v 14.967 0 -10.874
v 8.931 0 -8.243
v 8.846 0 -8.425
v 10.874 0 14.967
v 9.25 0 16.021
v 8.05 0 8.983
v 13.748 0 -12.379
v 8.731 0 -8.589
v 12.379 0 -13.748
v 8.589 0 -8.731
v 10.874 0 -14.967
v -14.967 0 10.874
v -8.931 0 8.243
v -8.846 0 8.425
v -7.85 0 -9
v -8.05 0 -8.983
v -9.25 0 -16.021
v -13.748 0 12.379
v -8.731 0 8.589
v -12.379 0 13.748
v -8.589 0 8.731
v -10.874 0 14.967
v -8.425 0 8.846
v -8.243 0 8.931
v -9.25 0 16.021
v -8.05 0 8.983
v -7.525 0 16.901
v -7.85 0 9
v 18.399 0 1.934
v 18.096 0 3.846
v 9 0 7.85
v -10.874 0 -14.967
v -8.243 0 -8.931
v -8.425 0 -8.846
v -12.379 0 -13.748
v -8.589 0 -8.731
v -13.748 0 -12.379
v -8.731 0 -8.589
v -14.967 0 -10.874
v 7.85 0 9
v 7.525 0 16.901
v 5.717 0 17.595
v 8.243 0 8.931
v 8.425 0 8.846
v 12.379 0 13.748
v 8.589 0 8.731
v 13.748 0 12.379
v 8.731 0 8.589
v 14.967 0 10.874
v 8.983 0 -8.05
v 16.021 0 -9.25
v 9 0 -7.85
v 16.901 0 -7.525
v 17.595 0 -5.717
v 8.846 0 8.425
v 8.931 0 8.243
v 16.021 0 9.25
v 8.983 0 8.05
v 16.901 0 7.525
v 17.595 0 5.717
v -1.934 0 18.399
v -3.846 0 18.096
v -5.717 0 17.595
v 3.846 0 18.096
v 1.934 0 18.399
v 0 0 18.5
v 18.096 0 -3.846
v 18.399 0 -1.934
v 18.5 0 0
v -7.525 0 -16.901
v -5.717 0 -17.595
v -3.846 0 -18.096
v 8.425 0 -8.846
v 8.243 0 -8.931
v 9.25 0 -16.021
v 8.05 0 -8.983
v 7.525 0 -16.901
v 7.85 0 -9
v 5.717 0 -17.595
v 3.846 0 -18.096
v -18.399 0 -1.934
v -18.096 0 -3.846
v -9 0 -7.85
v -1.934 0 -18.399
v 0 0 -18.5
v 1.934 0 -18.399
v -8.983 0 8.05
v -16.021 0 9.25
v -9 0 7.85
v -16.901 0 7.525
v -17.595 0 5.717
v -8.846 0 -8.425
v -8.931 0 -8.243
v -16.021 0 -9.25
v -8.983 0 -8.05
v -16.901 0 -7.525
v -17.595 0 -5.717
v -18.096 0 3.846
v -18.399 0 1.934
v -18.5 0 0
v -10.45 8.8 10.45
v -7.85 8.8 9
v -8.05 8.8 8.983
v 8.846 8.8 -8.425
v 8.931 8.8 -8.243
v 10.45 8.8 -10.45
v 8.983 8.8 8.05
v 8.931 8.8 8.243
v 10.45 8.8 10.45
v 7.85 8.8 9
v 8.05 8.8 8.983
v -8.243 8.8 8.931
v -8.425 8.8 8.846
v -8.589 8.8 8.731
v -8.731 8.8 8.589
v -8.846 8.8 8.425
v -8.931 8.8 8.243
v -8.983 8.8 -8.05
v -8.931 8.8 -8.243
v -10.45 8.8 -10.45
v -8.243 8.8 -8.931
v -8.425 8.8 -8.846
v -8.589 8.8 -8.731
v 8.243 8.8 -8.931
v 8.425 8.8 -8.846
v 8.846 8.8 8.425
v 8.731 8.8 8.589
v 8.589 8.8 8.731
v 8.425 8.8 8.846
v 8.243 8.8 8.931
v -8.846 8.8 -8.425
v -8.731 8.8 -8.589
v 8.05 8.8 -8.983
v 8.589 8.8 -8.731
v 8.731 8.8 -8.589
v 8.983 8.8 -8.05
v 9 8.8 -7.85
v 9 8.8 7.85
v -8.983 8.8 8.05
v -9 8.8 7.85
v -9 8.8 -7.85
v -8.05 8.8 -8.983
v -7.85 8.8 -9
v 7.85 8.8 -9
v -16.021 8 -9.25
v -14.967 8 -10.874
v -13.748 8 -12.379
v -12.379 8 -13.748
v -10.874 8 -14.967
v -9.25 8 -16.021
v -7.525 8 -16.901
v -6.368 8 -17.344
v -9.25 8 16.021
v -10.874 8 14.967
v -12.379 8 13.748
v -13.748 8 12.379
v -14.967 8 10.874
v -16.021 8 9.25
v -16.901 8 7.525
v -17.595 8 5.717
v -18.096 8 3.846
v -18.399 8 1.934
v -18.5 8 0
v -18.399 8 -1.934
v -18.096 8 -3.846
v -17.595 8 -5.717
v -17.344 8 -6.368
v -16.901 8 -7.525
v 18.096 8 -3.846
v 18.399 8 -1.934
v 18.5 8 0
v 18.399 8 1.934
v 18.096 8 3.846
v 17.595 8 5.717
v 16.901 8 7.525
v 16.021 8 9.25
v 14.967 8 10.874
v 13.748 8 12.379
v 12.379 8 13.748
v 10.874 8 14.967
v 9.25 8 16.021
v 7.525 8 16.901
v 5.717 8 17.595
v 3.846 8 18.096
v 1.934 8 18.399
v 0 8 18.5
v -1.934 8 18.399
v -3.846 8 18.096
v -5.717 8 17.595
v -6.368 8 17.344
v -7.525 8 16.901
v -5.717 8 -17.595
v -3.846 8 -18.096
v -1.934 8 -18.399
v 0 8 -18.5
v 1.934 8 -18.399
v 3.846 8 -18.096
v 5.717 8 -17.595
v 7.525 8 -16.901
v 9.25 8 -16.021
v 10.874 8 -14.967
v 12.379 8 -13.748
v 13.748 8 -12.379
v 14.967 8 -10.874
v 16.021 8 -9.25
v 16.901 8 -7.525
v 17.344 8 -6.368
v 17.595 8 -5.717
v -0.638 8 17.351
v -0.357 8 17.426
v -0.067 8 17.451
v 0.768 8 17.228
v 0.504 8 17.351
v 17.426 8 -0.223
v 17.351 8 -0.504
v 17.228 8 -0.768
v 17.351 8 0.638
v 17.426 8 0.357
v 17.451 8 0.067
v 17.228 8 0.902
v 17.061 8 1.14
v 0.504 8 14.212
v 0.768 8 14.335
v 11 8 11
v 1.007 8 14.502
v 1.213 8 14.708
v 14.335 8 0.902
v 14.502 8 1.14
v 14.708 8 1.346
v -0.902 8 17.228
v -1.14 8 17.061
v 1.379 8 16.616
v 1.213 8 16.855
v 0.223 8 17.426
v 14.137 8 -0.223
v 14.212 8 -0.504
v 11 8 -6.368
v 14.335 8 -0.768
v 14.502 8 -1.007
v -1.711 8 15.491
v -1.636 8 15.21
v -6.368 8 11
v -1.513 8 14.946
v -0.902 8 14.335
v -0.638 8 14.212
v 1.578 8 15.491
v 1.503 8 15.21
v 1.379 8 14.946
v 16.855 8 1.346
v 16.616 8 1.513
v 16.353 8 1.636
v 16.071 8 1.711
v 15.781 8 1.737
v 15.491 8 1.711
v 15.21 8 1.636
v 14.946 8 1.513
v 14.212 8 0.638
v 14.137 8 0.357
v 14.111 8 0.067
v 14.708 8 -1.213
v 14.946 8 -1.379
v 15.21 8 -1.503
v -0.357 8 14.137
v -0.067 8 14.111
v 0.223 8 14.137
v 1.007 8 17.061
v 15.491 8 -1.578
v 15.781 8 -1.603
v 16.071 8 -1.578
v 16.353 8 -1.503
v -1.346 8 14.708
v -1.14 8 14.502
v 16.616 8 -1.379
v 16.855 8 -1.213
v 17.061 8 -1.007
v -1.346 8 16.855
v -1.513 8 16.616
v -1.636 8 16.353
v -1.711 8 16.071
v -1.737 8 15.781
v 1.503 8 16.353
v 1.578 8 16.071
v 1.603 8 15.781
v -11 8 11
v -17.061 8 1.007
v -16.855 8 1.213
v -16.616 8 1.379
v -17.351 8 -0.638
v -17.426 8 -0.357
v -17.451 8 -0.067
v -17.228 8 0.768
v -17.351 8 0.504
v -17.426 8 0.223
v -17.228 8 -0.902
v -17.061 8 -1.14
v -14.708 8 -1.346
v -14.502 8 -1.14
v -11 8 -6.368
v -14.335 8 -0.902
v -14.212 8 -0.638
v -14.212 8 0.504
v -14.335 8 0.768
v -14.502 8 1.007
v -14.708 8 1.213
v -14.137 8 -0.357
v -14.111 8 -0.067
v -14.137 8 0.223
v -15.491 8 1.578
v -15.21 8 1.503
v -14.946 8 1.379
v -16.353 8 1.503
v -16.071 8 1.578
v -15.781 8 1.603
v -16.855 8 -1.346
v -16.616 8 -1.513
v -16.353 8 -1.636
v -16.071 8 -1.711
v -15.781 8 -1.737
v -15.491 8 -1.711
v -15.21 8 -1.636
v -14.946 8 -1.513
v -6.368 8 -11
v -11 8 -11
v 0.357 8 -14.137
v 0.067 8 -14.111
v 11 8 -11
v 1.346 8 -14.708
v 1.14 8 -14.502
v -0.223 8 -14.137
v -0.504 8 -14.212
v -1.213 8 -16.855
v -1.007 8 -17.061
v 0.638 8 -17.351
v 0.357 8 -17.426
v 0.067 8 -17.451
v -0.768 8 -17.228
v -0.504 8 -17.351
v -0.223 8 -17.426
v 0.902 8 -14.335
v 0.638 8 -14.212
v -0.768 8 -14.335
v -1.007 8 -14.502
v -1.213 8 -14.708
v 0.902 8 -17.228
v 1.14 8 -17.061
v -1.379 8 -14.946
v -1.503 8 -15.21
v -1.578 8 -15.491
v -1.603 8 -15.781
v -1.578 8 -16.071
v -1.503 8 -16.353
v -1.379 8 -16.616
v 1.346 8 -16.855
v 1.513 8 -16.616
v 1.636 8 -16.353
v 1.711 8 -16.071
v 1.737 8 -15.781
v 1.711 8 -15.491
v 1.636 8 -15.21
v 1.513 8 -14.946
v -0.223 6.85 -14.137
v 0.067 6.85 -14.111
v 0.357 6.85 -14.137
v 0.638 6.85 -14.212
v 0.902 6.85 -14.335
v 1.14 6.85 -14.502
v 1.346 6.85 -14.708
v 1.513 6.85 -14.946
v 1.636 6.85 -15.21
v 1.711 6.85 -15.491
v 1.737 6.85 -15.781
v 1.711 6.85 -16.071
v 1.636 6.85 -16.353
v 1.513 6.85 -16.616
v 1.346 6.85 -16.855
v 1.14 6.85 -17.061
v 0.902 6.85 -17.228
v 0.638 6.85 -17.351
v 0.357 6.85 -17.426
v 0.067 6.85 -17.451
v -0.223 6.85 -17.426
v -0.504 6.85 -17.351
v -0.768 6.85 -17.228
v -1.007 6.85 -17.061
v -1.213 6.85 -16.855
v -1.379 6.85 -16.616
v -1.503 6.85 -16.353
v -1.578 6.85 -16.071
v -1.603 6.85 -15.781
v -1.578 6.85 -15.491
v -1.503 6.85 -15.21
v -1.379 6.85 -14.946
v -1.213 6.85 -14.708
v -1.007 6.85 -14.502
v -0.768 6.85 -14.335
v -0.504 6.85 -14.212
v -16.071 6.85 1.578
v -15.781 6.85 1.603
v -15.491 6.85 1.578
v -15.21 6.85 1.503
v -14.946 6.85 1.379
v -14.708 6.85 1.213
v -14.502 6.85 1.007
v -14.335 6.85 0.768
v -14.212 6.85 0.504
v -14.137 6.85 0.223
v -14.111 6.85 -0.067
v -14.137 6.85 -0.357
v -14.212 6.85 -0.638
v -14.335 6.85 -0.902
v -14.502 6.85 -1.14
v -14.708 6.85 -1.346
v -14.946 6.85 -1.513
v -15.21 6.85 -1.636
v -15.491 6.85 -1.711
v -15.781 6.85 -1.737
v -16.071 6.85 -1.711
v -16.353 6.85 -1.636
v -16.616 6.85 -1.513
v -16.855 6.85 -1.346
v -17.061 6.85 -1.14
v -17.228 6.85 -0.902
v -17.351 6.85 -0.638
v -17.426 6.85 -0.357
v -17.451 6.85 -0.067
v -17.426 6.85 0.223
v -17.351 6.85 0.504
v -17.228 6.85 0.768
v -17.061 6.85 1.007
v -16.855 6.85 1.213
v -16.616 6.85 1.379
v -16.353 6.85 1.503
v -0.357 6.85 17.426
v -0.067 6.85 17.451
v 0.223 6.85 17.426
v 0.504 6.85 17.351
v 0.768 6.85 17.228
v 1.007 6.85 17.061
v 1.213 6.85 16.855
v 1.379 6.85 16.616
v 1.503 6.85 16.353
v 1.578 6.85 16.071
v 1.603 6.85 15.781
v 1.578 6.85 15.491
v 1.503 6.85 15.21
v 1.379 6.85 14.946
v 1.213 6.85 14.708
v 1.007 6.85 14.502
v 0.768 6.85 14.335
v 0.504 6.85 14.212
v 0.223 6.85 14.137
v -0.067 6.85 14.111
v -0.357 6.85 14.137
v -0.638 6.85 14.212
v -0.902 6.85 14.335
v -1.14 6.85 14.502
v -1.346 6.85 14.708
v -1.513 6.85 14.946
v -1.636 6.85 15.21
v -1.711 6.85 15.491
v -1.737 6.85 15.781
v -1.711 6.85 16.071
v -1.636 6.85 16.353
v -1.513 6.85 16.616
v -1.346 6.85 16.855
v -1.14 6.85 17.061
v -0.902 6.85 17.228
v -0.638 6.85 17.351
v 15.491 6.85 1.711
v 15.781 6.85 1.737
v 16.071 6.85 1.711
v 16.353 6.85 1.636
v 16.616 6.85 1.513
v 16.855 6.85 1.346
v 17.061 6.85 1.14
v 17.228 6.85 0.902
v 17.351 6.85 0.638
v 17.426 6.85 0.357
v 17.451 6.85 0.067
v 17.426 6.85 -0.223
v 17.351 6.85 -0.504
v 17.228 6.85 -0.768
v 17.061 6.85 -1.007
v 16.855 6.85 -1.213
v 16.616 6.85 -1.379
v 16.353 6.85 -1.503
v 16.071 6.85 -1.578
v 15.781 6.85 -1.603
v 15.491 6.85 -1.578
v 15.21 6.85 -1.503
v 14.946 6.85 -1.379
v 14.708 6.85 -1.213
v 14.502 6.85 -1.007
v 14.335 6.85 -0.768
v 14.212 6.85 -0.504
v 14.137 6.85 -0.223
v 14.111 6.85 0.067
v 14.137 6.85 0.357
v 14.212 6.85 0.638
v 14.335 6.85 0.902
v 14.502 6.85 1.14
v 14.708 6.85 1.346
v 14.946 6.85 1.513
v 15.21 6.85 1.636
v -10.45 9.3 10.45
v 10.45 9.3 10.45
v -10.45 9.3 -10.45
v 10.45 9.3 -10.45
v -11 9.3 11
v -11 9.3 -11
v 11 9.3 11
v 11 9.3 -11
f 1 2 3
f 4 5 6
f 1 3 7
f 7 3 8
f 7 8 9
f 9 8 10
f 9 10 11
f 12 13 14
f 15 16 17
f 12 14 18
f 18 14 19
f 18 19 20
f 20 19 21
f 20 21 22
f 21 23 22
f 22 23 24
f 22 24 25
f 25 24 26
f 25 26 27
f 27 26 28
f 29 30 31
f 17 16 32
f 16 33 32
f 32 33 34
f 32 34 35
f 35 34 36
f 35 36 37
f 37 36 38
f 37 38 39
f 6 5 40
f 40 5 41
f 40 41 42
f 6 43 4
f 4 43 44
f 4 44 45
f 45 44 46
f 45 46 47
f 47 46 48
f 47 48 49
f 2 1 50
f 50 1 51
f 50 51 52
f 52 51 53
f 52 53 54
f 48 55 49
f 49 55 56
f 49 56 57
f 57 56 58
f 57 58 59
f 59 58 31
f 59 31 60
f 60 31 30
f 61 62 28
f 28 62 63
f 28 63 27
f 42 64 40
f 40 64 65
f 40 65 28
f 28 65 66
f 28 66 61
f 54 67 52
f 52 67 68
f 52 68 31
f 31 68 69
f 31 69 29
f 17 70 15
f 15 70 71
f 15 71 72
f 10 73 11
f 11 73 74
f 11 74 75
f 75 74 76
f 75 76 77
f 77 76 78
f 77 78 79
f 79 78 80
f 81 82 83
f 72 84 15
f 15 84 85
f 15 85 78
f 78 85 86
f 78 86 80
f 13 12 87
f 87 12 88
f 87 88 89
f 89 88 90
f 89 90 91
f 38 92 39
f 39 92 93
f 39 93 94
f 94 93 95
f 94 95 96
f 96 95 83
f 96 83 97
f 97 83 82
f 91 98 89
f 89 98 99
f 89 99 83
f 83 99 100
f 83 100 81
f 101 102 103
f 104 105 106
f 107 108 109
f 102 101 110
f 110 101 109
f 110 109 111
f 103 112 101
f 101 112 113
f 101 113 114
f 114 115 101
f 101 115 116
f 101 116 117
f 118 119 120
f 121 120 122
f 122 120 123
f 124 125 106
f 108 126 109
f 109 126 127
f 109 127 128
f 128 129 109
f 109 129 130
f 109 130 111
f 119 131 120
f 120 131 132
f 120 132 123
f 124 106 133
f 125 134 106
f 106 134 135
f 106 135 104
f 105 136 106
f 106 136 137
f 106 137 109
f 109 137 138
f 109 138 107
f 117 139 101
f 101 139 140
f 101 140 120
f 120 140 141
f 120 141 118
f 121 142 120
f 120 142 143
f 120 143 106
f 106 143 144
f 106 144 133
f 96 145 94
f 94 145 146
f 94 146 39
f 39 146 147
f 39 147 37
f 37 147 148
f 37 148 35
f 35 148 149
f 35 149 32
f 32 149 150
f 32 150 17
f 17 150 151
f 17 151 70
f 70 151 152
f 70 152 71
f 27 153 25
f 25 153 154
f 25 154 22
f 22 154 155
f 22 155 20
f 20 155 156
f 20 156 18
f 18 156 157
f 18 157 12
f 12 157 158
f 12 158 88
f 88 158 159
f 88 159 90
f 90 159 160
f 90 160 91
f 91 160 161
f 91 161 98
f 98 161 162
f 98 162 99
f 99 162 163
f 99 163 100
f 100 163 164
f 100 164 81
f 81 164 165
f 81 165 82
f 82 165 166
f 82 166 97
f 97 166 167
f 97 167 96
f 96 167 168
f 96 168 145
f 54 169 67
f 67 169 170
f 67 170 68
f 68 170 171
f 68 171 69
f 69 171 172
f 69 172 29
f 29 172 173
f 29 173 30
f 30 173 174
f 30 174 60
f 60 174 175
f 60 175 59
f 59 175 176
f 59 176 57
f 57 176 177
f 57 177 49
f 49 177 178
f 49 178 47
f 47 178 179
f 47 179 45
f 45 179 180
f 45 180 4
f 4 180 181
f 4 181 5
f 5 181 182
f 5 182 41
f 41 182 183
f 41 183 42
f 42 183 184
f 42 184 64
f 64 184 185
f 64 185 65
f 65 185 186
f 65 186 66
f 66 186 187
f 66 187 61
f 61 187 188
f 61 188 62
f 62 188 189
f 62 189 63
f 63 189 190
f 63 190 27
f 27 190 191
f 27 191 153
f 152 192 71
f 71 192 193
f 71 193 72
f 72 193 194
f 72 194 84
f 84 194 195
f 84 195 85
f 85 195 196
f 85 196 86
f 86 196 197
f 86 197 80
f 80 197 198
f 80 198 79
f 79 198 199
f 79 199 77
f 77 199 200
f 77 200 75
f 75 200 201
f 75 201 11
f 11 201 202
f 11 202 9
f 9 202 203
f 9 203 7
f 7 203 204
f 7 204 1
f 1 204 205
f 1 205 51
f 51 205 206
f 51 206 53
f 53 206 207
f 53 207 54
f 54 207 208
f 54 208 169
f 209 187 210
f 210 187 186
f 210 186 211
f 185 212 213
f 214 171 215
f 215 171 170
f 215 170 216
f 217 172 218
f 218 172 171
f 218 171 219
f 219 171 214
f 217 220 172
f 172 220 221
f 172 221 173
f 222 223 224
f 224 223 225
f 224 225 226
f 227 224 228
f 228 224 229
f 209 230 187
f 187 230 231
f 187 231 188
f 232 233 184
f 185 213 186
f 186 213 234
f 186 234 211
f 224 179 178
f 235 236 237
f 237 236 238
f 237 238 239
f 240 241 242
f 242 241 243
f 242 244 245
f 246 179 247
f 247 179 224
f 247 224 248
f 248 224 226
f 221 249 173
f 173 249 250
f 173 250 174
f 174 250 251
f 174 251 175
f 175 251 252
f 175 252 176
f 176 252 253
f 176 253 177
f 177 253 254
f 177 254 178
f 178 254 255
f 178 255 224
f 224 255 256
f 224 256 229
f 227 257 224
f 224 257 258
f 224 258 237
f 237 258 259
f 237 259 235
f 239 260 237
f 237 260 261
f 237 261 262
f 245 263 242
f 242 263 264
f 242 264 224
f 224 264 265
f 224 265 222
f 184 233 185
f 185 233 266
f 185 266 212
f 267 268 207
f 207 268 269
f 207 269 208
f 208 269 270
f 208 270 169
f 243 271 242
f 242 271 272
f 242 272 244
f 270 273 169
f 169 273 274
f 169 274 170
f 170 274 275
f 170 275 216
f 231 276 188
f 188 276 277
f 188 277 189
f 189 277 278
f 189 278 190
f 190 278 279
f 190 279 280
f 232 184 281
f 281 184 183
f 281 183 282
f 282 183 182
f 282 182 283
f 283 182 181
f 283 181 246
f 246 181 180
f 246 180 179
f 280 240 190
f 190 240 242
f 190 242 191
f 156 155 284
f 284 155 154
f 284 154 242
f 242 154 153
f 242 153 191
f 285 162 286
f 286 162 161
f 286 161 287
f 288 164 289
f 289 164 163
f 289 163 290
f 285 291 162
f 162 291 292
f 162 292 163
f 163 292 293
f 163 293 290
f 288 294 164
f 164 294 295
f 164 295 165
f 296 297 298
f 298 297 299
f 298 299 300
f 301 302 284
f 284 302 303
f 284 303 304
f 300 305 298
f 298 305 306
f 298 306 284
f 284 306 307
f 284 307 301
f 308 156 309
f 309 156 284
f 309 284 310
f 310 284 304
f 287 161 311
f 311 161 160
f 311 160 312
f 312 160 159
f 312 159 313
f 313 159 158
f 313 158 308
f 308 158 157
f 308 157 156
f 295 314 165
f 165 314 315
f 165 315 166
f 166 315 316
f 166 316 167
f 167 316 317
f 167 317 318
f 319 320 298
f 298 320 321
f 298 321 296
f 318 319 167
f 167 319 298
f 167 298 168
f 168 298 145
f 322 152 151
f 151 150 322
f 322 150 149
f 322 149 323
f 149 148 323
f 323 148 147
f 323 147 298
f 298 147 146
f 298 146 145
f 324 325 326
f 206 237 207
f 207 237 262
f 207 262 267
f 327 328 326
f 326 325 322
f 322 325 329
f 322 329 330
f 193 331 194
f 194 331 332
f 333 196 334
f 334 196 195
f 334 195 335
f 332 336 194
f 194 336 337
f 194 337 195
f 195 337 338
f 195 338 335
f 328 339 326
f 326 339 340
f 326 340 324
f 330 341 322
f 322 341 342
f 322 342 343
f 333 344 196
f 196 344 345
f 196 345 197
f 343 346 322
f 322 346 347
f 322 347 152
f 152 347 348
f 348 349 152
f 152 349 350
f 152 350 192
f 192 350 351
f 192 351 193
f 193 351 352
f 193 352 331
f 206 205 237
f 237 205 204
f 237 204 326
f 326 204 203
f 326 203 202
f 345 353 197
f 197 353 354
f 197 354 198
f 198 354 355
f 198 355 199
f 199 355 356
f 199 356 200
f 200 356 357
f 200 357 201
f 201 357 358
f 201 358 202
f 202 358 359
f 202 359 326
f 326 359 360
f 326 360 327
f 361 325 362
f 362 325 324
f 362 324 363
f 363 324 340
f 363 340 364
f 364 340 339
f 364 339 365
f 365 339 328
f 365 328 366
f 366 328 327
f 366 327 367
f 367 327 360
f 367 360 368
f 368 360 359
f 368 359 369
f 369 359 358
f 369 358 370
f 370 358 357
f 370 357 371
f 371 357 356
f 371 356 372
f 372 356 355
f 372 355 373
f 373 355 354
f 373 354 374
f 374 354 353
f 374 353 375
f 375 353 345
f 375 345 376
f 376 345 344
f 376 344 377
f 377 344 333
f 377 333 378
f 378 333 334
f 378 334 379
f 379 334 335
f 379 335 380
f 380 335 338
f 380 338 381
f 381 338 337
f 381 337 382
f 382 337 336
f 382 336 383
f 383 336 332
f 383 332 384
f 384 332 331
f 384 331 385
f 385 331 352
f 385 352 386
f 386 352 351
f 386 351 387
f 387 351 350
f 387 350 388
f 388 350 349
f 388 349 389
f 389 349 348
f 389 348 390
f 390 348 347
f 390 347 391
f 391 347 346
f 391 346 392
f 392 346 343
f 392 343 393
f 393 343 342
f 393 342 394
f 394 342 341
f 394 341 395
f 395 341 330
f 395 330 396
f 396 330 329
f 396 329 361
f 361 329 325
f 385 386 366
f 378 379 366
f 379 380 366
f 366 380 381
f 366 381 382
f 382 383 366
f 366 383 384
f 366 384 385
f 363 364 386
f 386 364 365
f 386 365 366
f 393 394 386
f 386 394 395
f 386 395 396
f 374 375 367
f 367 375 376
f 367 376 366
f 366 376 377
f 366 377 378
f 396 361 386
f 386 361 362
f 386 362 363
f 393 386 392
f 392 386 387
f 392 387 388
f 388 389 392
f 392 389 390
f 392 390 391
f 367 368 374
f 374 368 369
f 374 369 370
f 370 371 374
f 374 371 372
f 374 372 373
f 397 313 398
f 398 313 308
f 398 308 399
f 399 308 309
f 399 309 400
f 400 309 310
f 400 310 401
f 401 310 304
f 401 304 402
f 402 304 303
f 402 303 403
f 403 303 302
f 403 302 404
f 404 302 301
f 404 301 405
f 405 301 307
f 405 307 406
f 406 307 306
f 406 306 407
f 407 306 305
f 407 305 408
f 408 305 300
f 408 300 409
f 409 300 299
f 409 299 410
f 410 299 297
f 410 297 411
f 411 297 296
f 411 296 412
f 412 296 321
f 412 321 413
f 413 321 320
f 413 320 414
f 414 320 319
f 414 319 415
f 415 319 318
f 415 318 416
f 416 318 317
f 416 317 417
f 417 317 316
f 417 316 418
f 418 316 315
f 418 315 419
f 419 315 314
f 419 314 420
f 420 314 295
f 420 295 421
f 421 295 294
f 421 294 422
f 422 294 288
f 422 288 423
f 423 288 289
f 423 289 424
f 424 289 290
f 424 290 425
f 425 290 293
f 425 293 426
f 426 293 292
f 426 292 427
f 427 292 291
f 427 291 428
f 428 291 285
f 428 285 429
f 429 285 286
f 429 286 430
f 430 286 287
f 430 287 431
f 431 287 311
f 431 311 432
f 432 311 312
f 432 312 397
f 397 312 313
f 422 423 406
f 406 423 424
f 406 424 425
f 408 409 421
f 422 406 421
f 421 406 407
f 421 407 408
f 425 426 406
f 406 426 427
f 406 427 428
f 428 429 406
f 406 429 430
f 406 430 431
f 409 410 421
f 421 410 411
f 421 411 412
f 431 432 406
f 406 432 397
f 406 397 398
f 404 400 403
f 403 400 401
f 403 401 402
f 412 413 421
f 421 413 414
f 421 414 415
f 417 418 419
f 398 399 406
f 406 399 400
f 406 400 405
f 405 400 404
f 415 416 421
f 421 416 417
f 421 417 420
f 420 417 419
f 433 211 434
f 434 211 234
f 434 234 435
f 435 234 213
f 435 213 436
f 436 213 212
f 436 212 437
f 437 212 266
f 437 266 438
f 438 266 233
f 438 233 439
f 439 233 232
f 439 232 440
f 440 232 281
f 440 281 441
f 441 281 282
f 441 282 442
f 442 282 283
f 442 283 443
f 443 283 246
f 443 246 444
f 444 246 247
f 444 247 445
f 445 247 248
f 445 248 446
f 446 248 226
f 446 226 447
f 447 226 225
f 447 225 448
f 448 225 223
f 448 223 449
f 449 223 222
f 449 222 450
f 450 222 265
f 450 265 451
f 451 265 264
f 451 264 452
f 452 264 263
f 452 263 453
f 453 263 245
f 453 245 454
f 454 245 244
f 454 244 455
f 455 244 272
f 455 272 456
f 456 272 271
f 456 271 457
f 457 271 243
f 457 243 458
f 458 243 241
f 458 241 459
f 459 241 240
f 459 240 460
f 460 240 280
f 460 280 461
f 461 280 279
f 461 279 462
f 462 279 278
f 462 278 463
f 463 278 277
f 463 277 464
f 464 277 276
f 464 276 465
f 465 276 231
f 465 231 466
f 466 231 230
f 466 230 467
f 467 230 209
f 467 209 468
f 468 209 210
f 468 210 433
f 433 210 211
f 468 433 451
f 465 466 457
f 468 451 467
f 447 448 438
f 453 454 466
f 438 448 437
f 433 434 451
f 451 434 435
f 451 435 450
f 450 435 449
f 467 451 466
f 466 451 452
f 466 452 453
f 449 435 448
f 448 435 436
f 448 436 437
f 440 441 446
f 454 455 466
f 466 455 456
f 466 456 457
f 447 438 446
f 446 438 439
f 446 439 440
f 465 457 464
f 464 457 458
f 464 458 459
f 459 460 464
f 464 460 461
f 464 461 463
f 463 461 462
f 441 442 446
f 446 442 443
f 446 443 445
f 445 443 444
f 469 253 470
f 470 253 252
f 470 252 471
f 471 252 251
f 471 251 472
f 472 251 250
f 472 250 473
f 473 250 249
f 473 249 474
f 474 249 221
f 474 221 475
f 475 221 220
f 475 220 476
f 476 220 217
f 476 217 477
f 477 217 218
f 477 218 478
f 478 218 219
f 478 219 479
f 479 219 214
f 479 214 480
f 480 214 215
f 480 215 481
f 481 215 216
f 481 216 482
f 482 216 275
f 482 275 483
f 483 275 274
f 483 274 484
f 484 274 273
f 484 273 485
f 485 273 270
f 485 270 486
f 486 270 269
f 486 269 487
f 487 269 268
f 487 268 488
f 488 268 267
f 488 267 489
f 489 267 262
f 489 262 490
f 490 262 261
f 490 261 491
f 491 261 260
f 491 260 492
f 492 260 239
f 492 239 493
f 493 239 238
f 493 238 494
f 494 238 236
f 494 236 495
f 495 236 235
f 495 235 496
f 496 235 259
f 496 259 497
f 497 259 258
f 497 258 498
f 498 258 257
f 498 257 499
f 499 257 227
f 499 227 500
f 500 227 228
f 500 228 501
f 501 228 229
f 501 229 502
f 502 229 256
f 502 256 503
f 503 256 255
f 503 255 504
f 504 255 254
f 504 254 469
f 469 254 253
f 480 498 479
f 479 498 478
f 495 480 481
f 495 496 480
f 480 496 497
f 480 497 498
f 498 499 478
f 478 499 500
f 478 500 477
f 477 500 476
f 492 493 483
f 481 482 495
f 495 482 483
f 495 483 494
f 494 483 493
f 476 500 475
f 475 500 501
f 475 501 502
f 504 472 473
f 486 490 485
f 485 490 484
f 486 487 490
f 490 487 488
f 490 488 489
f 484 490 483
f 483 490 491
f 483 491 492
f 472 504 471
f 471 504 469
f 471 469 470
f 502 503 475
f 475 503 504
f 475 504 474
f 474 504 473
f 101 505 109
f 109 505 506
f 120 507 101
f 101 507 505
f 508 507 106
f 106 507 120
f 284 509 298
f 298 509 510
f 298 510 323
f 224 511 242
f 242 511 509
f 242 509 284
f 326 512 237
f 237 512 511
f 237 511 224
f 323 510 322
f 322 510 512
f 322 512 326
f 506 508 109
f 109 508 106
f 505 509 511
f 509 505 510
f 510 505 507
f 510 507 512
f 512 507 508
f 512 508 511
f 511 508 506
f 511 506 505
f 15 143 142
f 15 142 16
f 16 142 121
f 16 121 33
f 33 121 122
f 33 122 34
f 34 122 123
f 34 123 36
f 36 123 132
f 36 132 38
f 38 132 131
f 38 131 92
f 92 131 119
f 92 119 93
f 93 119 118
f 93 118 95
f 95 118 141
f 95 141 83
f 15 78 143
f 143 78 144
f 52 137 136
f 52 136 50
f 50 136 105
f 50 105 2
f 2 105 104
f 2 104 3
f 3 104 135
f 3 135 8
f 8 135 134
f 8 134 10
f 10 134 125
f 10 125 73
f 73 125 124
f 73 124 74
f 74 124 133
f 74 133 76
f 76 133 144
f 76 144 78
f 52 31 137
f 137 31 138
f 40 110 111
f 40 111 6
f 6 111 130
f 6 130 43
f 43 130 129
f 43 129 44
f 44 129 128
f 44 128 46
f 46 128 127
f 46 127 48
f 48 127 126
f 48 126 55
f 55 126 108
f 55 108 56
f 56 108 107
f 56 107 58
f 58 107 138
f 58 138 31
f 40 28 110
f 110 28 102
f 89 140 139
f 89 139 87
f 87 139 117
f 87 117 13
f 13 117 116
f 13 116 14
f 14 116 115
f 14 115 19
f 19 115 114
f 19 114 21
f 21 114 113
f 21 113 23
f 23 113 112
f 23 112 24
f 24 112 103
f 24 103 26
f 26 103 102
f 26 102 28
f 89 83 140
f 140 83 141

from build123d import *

# Parameters (mm, degrees)
SKETCH1_R           = 18.5
BOSS_EXTRUDE1_DEPTH = 8
SKETCH11_R          = 1.67
CUT_EXTRUDE5_DEPTH  = 1.15
CIRPATTERN1_COUNT   = 4
SKETCH13_W          = 22
SKETCH13_H          = 22
SKETCH13_W_2        = 20.9
SKETCH13_H_2        = 20.9
BOSS_EXTRUDE3_DEPTH = 1.3
SKETCH12_W          = 22
SKETCH12_H          = 22
BOSS_EXTRUDE2_DEPTH = 0.8
CUT_EXTRUDE6_DEPTH  = 28.603260677


with BuildPart() as part:
    # Sketch1 → Boss-Extrude1 (new body)
    with BuildSketch(Plane(origin=(0, 0, 0), x_dir=(1, 0, 0), z_dir=(0, 1, 0))):
        with Locations(Location((0, 0, 0), (0, 0, 270))):
            Circle(SKETCH1_R)
    extrude(amount=BOSS_EXTRUDE1_DEPTH)

    # Sketch11 → Cut-Extrude5 (cut)
    with BuildSketch(Plane(origin=(0, 8, 0), x_dir=(1, 0, 0), z_dir=(0, 1, 0))):
        with Locations(Location((0.066774753, 15.781335524, 0), (0, 0, 270))):
            Circle(SKETCH11_R)
    cut_extrude5 = extrude(amount=-CUT_EXTRUDE5_DEPTH, mode=Mode.SUBTRACT)

    # CirPattern1: Cut-Extrude5 ×4 about axis
    cirpattern1_axis = Axis((0, 0, 0), (0, 1, 0))
    for i in range(1, CIRPATTERN1_COUNT):
        add(cut_extrude5.rotate(cirpattern1_axis, i * 360 / CIRPATTERN1_COUNT), mode=Mode.SUBTRACT)

    # Sketch13 → Boss-Extrude3 (add)
    with BuildSketch(Plane(origin=(0, 8, 0), x_dir=(1, 0, 0), z_dir=(0, 1, 0))):
        Rectangle(SKETCH13_W, SKETCH13_H)
        Rectangle(SKETCH13_W_2, SKETCH13_H_2, mode=Mode.SUBTRACT)
    extrude(amount=BOSS_EXTRUDE3_DEPTH)

    # Sketch12 → Boss-Extrude2 (add)
    with BuildSketch(Plane(origin=(0, 8, 0), x_dir=(1, 0, 0), z_dir=(0, 1, 0))):
        Rectangle(SKETCH12_W, SKETCH12_H)
    extrude(amount=BOSS_EXTRUDE2_DEPTH)

    # Sketch14 → Cut-Extrude6 (cut, through all)
    with BuildSketch(Plane(origin=(0, 8.8, 0), x_dir=(1, 0, 0), z_dir=(0, 1, 0))):
        with BuildLine():
            ThreePointArc((-9, -7.85), (-8.663172798, -8.663172798), (-7.85, -9))
            Line((-7.85, -9), (7.85, -9))
            ThreePointArc((7.85, -9), (8.663172798, -8.663172798), (9, -7.85))
            Line((9, -7.85), (9, 7.85))
            ThreePointArc((9, 7.85), (8.663172798, 8.663172798), (7.85, 9))
            Line((7.85, 9), (-7.85, 9))
            ThreePointArc((-7.85, 9), (-8.663172798, 8.663172798), (-9, 7.85))
            Line((-9, 7.85), (-9, -7.85))
        make_face()
    extrude(amount=-CUT_EXTRUDE6_DEPTH, mode=Mode.SUBTRACT)


solid = part.part
